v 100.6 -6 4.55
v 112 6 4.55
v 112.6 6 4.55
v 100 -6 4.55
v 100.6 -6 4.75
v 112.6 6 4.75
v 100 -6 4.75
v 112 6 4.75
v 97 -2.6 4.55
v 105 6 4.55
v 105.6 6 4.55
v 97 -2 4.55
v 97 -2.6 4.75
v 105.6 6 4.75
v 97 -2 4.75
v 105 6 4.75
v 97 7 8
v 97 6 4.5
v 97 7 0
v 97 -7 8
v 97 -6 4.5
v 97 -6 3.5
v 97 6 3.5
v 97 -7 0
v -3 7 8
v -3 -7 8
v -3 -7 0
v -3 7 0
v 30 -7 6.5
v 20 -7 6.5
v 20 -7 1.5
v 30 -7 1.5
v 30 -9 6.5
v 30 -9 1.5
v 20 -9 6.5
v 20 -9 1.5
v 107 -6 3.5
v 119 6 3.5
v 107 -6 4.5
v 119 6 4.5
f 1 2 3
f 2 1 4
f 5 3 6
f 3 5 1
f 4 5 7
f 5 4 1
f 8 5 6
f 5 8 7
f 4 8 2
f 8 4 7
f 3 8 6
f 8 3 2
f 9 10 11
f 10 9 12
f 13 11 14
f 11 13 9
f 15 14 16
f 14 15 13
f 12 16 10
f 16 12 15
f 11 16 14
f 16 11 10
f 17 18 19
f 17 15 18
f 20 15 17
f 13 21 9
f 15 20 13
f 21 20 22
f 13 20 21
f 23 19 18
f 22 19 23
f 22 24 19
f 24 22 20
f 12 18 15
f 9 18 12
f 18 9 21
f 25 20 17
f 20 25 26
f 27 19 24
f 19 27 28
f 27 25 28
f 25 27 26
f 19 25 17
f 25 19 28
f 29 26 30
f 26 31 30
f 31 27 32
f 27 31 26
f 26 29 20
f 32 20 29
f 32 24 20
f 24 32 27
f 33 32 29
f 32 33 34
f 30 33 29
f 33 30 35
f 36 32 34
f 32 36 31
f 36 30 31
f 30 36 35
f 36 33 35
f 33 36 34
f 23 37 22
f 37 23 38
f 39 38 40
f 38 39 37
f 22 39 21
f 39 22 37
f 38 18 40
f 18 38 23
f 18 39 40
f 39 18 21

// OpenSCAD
// file: _common.scad
// mechanism 共用設定 + 齒輪 module
$fn = 60;

// 簡化齒輪：N 個齒、節圓半徑 r、齒高 h、齒寬 w
module simple_gear(N = 16, r = 20, h = 4, thick = 6) {
  union() {
    // 主圓盤
    cylinder(h = thick, r = r, center = true);
    // 齒（梯形）
    for (i = [0:N-1]) {
      rotate([0, 0, i * 360 / N])
        translate([r, 0, 0])
          linear_extrude(height = thick, center = true)
            polygon([[0, -2.4], [h, -1.4], [h, 1.4], [0, 2.4]]);
    }
    // 中心凸軸
    cylinder(h = thick * 1.4, r = r * 0.18, center = true);
  }
}
// main file
// 刀類 Knife — 美工刀（黃色塑膠柄 + 銀色刀片）
include <_common.scad>

// 黃色塑膠刀身
color([0.95, 0.75, 0.10])
  translate([-3, -7, 0]) cube([100, 14, 8]);

// 滑動鈕（橘色）：在刀身背脊（-Y 面，刀片的背側；預設等角視角看得到這一面），2026-10 修正：原本誤放在寬面上
color([0.95, 0.45, 0.10])
  translate([20, -9, 1.5]) cube([10, 3, 5]);

// 刀片（折刀式梯形刀片，從刀身前端伸出；刃口是 +Y 側的長直邊、刀尖在刃側，斜邊是折斷線方向）
color([0.85, 0.85, 0.85])
  translate([95, 0, 3.5])
    linear_extrude(height = 1)
      polygon([[0, 6], [0, -6], [12, -6], [24, 6]]);
// 折斷線（與刀片斜邊平行的刻痕）
color([0.45, 0.45, 0.45])
  for (k = [1:2]) translate([95 - k * 7, 0, 4.55])
    linear_extrude(height = 0.2) polygon([[12, -6], [12.6, -6], [24.6, 6], [24, 6]]);
